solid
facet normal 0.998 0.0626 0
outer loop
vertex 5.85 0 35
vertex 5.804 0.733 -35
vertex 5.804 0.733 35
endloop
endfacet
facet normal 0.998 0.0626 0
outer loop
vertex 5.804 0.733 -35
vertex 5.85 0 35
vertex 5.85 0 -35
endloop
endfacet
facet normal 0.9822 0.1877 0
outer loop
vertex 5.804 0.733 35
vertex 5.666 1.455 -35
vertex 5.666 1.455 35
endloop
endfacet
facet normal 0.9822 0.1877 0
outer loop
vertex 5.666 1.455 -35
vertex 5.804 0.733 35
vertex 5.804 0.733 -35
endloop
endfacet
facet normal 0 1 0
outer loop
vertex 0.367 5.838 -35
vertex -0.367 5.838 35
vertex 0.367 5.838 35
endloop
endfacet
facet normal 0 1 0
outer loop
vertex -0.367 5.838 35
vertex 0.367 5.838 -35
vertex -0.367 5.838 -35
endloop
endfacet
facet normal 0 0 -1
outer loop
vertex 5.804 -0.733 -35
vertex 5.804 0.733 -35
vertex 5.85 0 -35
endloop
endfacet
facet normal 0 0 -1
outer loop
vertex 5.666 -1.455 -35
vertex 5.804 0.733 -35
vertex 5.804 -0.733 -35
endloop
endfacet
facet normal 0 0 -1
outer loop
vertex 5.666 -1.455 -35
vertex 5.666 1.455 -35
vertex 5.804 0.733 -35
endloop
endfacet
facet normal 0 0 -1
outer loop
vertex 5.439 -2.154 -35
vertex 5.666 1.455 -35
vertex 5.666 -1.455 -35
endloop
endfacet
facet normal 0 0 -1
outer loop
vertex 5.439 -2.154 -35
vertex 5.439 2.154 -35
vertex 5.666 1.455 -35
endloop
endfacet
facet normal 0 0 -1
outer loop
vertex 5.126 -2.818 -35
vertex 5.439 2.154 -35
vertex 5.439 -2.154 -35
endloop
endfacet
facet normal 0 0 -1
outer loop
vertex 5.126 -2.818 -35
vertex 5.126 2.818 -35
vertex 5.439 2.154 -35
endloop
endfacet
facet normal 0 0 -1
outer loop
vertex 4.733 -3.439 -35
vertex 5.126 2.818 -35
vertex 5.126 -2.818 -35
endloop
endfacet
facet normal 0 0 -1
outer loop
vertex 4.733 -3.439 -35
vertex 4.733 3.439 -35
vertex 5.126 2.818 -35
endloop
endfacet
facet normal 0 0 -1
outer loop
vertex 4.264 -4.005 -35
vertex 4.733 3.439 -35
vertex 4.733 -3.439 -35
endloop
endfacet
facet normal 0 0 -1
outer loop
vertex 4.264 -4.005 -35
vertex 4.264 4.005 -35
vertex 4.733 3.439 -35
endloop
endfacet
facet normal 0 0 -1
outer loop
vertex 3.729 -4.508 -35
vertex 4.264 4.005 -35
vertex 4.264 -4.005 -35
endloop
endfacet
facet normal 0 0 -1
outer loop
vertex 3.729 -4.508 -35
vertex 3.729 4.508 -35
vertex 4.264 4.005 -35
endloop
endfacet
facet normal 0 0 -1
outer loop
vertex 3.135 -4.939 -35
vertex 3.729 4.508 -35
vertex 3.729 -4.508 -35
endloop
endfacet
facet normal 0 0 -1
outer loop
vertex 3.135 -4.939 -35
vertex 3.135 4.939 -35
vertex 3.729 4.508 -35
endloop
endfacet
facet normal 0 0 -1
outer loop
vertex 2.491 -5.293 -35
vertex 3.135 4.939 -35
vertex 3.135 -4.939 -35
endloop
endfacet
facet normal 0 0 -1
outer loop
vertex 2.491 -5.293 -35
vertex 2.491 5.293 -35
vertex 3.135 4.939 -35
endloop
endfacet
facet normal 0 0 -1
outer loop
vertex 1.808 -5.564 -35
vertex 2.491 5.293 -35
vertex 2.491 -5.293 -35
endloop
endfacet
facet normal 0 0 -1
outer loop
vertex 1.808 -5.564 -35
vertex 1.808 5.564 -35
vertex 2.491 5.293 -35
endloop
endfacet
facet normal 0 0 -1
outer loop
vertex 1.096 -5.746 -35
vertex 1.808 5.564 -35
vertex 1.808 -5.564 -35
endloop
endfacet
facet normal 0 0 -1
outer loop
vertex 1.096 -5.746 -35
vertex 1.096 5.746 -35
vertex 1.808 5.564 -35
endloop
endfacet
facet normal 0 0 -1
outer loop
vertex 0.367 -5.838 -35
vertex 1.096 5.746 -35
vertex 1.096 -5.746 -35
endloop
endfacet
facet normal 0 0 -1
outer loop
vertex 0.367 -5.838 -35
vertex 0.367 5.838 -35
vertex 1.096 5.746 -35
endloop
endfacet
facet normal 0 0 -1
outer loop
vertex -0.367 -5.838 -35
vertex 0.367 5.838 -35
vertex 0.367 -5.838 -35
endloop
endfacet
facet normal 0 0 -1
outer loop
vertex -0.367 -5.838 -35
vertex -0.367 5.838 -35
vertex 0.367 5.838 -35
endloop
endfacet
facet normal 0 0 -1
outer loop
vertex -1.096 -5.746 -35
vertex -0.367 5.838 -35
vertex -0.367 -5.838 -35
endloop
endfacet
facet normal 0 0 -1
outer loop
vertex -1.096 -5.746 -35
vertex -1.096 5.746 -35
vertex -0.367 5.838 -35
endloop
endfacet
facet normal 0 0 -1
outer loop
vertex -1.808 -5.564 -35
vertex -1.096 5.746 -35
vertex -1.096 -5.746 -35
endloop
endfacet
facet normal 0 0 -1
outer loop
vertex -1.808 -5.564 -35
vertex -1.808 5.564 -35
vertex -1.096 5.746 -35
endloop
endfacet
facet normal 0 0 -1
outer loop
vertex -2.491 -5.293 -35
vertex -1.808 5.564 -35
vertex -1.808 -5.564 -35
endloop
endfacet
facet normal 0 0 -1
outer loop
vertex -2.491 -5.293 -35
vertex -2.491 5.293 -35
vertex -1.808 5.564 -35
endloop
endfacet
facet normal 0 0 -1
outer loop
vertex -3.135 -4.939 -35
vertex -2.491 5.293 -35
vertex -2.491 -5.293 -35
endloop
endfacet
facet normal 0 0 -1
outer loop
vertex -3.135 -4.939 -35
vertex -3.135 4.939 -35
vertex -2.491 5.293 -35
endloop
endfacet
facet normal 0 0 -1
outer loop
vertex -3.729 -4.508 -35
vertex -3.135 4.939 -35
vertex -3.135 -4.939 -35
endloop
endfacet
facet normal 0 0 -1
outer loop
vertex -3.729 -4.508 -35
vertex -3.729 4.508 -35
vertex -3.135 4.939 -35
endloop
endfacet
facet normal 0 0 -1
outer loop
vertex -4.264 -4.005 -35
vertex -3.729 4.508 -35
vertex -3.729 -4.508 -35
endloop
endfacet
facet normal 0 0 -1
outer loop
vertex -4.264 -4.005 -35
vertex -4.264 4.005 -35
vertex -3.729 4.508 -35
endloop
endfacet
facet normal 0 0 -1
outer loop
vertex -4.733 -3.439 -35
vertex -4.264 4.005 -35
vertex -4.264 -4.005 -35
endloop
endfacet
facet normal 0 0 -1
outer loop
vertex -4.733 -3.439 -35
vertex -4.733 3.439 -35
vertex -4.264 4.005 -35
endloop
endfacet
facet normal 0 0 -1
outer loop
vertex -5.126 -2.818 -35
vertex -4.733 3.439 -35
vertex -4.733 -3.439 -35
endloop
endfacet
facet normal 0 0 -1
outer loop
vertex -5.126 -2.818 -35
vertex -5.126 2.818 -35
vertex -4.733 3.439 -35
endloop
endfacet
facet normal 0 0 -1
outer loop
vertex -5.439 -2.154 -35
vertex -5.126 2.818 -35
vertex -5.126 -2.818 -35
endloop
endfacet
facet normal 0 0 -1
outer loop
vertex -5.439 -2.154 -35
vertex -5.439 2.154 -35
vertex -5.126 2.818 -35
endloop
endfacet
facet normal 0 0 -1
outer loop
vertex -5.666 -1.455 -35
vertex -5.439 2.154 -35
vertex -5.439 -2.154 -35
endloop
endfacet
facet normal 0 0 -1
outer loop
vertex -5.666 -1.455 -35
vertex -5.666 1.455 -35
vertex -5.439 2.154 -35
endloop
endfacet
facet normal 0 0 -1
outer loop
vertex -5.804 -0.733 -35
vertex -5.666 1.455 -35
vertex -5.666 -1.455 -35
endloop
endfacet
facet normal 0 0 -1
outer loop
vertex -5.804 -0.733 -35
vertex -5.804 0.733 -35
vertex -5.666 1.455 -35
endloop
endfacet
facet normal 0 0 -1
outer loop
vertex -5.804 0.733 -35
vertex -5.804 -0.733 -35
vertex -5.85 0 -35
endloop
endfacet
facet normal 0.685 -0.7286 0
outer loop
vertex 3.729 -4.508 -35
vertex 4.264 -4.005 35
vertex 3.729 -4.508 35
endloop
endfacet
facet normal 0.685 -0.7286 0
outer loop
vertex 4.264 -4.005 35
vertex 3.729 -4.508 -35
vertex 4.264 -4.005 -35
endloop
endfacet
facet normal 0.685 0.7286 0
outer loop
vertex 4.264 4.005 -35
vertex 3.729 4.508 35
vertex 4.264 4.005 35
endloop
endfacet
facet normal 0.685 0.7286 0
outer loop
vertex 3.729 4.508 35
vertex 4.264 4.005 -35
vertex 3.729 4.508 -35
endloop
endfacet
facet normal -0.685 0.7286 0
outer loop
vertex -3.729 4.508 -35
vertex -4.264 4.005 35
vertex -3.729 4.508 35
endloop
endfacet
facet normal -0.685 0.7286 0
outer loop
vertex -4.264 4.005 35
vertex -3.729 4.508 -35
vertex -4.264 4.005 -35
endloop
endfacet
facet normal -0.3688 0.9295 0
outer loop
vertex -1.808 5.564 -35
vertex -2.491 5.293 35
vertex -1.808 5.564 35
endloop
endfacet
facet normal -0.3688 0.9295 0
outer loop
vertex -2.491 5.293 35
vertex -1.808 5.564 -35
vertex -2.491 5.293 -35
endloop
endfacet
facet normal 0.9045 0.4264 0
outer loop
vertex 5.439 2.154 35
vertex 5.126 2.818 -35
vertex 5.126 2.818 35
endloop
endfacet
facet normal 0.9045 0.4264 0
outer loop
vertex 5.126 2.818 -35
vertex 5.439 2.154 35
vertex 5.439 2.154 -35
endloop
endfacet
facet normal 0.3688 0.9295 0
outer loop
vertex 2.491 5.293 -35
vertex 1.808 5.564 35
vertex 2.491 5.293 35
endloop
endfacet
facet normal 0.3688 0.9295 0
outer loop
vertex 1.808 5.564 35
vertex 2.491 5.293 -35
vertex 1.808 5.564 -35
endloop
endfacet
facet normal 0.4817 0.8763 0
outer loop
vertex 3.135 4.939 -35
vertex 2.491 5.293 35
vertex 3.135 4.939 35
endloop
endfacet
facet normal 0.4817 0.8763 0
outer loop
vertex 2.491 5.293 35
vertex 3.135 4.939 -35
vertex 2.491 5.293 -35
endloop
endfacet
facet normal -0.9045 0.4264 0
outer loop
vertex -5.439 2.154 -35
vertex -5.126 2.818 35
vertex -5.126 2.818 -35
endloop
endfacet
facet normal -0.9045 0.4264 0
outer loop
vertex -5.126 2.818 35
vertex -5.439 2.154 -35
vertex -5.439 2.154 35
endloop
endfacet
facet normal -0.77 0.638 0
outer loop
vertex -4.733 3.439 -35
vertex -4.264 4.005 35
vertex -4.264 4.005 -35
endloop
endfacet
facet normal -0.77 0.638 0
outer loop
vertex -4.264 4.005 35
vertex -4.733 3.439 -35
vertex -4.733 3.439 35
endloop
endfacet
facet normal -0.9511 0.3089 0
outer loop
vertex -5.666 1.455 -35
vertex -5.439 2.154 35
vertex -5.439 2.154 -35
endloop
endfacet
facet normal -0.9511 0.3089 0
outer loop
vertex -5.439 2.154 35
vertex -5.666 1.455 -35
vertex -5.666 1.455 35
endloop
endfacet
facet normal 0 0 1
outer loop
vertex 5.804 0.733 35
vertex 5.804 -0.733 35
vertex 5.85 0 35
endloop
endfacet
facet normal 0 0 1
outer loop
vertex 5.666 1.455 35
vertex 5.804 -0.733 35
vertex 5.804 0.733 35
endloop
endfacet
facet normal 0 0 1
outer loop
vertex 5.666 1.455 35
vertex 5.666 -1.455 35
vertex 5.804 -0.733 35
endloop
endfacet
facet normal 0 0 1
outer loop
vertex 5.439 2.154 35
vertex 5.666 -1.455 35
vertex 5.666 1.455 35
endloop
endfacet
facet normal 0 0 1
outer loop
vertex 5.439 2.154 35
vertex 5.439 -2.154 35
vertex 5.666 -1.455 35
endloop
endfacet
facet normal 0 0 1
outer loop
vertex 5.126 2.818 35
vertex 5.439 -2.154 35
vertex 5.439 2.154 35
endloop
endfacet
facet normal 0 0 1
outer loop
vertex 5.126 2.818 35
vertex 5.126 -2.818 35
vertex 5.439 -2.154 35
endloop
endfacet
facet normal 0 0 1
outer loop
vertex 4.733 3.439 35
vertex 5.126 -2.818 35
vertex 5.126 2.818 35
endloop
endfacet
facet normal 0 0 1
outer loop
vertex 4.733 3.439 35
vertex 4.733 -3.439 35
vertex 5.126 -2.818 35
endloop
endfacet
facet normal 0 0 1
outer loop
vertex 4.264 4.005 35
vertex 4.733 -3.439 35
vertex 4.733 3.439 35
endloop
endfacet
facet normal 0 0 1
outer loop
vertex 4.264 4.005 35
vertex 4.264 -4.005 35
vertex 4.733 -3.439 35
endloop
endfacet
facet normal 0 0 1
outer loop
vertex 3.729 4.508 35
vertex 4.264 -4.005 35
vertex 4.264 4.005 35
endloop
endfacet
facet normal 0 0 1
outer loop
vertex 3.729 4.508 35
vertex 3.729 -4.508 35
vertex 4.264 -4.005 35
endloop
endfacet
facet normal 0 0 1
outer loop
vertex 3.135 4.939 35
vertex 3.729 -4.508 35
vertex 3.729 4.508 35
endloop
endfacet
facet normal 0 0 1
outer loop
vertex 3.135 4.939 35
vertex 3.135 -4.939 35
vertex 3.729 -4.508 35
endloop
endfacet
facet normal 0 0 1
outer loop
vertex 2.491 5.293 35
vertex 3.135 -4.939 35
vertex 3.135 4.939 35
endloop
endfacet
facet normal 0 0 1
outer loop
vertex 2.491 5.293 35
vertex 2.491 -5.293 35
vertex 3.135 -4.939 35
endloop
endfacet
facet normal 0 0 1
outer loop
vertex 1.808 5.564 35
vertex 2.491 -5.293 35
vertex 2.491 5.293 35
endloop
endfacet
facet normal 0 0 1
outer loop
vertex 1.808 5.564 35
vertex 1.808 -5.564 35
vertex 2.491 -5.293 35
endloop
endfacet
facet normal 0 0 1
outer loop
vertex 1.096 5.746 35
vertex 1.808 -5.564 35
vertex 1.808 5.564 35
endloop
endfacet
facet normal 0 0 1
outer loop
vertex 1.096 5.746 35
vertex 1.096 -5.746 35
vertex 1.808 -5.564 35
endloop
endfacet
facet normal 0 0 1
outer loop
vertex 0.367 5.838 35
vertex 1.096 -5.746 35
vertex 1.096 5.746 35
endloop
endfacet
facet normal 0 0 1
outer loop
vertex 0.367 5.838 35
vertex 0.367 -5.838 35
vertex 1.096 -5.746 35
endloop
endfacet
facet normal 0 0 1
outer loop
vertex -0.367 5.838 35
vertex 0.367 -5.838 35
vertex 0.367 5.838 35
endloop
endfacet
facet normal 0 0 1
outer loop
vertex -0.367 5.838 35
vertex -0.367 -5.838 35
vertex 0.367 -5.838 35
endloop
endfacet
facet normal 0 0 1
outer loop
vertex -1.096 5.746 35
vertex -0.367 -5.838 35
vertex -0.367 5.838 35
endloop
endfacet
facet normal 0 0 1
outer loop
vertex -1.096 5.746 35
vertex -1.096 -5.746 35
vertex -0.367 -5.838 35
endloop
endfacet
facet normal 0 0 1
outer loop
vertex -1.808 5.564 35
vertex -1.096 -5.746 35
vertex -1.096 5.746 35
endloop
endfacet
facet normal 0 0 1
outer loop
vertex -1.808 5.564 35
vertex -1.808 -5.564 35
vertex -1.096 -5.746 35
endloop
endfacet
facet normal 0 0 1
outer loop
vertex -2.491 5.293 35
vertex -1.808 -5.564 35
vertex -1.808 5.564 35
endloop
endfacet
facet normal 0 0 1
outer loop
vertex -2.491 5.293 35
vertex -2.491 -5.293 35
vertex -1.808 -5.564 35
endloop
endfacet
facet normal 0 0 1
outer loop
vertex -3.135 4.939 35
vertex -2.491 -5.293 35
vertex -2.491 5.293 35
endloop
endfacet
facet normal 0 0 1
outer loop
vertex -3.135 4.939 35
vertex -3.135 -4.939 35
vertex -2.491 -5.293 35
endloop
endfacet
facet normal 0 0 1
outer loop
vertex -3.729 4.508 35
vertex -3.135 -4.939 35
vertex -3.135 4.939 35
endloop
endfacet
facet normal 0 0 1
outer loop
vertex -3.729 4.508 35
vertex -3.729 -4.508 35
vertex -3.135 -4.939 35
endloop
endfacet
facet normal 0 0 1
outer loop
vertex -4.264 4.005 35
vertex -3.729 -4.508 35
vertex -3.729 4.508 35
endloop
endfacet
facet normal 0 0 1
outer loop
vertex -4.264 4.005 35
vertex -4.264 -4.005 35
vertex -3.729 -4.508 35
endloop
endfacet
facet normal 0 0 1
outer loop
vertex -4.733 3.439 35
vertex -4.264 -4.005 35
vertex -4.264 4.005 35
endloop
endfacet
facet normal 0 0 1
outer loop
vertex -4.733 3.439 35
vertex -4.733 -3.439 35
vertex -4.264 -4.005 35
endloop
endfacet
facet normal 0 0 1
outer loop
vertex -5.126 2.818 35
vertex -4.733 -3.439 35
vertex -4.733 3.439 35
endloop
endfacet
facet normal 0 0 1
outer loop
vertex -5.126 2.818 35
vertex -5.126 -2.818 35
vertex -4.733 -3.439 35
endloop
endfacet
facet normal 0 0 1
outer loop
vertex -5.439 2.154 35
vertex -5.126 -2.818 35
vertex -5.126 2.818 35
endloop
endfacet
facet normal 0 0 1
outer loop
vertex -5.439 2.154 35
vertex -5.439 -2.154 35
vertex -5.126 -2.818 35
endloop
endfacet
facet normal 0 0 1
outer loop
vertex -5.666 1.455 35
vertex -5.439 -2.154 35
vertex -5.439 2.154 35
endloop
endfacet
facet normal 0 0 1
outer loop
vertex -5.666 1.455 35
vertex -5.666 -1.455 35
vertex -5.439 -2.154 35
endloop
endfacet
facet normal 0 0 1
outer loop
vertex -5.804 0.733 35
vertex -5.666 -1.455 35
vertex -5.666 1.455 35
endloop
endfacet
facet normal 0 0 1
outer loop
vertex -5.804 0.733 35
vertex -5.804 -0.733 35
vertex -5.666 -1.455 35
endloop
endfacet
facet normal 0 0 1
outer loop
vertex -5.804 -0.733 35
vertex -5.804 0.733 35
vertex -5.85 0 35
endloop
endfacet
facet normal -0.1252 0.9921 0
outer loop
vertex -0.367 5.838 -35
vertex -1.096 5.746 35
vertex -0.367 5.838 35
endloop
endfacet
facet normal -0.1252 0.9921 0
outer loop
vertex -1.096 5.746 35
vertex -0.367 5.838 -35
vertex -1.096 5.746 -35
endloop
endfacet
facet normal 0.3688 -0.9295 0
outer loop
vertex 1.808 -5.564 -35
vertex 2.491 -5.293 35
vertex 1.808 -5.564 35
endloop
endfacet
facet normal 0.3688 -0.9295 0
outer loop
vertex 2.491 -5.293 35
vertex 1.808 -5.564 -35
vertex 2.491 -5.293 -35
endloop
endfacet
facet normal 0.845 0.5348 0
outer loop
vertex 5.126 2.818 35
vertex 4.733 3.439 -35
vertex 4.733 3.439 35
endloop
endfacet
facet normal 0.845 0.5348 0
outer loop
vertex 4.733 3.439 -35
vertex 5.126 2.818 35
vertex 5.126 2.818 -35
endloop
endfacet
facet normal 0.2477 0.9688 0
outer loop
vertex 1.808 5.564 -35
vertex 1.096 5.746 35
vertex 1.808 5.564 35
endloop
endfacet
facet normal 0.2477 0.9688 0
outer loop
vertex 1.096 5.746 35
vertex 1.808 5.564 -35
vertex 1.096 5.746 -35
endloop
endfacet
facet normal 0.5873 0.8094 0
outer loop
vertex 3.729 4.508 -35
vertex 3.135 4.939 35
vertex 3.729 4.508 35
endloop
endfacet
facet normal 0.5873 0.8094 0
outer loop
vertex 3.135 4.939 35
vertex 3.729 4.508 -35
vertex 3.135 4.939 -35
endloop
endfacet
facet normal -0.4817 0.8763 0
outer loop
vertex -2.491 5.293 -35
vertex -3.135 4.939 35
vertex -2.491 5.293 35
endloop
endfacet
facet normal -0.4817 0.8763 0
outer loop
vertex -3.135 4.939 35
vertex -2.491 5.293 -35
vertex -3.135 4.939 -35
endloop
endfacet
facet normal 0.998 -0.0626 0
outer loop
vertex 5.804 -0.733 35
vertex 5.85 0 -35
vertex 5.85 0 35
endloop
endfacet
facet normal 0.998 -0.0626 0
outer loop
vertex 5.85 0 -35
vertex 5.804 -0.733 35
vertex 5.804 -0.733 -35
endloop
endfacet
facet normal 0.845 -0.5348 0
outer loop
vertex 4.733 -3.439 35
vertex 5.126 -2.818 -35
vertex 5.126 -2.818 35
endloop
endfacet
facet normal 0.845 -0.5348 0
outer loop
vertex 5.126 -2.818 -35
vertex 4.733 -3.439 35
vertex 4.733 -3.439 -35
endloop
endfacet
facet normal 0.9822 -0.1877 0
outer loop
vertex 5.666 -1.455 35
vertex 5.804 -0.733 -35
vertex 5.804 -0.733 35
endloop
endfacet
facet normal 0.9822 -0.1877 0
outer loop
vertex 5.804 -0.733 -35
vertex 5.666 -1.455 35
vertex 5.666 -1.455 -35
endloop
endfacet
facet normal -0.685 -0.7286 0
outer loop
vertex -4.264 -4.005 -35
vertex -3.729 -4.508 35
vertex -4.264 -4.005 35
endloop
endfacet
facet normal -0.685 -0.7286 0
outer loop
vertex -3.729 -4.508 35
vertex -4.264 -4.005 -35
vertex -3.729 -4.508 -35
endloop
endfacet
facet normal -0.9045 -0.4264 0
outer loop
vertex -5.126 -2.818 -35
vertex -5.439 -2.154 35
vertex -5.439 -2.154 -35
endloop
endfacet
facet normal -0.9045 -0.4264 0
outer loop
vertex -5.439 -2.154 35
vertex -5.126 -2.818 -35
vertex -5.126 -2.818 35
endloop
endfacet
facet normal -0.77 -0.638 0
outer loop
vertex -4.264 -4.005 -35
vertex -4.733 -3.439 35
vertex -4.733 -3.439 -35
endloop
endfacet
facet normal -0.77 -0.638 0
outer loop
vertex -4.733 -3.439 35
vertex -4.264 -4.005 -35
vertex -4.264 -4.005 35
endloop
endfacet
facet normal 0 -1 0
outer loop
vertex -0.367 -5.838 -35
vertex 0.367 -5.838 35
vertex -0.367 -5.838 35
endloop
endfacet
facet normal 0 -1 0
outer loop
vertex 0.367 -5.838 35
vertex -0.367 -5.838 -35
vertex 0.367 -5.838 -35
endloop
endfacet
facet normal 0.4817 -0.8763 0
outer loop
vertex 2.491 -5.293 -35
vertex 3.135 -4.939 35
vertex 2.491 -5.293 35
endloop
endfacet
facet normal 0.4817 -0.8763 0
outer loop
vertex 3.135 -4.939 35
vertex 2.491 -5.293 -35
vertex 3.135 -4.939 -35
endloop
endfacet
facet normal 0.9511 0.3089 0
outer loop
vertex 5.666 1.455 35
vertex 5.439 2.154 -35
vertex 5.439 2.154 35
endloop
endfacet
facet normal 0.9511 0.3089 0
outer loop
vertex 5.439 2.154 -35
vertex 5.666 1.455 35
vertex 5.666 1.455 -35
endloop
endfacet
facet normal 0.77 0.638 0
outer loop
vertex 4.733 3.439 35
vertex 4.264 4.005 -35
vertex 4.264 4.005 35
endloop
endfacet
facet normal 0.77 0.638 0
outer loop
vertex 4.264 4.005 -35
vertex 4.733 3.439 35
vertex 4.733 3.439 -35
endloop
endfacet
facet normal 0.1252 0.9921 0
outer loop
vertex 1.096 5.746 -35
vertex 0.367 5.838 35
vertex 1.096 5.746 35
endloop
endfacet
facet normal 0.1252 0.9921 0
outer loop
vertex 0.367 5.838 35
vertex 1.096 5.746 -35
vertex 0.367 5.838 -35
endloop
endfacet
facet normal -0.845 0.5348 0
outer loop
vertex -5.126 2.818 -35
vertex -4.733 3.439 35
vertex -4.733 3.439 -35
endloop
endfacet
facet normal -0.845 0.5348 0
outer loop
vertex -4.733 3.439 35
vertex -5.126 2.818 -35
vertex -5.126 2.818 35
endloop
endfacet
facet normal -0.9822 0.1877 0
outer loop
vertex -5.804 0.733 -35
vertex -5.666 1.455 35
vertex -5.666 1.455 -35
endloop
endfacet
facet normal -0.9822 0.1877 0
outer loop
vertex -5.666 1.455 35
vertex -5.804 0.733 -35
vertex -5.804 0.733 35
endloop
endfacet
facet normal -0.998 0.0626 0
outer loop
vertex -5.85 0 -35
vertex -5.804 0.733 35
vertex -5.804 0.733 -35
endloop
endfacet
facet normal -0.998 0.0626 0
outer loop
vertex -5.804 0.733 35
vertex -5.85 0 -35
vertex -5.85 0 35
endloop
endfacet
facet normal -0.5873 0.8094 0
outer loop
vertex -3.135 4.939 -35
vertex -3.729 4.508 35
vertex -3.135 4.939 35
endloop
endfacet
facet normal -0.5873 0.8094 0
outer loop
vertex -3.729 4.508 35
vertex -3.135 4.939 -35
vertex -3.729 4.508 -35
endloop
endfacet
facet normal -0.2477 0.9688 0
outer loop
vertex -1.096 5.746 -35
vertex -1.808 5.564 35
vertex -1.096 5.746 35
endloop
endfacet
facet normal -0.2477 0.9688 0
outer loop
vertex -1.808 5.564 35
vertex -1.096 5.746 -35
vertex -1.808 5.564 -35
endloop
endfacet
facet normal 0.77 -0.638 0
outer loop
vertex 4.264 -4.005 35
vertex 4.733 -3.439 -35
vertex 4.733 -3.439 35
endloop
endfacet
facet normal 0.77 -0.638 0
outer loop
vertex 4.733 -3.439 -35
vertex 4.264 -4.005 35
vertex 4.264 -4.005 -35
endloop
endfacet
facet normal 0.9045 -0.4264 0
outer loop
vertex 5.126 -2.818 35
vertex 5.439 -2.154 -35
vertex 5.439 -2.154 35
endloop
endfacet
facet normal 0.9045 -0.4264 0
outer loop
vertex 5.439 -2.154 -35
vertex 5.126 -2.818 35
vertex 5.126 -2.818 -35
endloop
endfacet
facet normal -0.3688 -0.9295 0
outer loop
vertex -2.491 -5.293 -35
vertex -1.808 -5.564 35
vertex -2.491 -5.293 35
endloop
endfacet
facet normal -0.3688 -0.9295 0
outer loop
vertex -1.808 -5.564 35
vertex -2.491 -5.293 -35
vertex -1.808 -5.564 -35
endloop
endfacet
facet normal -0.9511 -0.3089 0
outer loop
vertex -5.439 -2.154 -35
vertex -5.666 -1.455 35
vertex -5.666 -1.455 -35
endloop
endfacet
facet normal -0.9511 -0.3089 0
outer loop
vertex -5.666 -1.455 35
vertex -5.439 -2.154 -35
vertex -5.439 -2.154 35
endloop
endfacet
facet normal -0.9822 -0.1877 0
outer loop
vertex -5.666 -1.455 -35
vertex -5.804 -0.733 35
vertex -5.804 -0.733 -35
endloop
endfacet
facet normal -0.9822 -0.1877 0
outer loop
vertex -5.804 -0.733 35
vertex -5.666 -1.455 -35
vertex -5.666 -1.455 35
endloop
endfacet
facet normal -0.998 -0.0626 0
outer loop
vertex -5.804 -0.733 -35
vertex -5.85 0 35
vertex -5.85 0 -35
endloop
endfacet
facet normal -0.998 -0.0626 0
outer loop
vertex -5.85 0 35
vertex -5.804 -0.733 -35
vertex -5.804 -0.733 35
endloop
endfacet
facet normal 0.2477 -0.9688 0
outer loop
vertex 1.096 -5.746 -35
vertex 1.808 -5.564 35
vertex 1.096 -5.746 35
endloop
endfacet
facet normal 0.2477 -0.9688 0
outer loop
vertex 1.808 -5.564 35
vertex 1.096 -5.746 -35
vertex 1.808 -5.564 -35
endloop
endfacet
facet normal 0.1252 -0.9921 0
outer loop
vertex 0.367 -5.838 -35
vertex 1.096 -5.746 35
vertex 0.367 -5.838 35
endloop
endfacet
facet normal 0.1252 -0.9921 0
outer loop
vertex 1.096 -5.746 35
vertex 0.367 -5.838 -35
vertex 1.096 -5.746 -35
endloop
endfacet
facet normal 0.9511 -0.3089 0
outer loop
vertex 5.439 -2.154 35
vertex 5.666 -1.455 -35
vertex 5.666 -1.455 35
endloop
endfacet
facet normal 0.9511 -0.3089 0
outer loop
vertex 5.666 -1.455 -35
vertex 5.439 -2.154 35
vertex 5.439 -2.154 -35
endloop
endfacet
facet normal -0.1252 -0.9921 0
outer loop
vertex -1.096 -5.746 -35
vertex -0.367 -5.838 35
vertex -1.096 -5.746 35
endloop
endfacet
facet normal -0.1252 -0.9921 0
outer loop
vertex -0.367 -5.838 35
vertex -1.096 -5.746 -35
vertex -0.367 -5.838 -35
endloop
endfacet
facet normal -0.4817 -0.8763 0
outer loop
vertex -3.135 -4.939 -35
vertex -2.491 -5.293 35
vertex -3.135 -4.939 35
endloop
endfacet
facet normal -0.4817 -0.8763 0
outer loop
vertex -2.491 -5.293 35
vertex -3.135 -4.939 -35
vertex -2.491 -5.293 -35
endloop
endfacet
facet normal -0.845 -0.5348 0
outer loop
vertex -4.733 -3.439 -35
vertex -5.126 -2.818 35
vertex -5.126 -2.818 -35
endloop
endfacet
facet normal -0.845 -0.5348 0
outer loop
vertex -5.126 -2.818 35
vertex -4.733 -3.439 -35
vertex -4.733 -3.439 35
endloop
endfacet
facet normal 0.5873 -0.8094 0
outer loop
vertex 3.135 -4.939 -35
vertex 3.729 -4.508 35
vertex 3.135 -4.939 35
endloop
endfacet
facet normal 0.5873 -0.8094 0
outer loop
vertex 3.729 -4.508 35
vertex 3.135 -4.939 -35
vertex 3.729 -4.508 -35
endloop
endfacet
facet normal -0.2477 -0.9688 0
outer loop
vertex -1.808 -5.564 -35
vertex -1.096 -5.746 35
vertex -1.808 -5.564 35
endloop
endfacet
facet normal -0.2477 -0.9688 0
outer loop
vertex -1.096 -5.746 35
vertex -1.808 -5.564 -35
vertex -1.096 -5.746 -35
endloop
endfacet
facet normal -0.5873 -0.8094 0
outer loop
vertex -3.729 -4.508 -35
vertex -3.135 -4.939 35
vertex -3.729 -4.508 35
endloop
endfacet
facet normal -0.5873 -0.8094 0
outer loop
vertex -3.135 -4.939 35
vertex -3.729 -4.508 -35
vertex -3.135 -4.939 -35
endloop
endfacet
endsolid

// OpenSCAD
$fn = 50;


difference() {
	union() {
		translate(v = [0, 0, -35.0000000000]) {
			cylinder(h = 70, r = 5.8500000000);
		}
	}
	union() {
		translate(v = [0, 0, -100.0000000000]) {
			cylinder(h = 200, r = 0);
		}
	}
}
